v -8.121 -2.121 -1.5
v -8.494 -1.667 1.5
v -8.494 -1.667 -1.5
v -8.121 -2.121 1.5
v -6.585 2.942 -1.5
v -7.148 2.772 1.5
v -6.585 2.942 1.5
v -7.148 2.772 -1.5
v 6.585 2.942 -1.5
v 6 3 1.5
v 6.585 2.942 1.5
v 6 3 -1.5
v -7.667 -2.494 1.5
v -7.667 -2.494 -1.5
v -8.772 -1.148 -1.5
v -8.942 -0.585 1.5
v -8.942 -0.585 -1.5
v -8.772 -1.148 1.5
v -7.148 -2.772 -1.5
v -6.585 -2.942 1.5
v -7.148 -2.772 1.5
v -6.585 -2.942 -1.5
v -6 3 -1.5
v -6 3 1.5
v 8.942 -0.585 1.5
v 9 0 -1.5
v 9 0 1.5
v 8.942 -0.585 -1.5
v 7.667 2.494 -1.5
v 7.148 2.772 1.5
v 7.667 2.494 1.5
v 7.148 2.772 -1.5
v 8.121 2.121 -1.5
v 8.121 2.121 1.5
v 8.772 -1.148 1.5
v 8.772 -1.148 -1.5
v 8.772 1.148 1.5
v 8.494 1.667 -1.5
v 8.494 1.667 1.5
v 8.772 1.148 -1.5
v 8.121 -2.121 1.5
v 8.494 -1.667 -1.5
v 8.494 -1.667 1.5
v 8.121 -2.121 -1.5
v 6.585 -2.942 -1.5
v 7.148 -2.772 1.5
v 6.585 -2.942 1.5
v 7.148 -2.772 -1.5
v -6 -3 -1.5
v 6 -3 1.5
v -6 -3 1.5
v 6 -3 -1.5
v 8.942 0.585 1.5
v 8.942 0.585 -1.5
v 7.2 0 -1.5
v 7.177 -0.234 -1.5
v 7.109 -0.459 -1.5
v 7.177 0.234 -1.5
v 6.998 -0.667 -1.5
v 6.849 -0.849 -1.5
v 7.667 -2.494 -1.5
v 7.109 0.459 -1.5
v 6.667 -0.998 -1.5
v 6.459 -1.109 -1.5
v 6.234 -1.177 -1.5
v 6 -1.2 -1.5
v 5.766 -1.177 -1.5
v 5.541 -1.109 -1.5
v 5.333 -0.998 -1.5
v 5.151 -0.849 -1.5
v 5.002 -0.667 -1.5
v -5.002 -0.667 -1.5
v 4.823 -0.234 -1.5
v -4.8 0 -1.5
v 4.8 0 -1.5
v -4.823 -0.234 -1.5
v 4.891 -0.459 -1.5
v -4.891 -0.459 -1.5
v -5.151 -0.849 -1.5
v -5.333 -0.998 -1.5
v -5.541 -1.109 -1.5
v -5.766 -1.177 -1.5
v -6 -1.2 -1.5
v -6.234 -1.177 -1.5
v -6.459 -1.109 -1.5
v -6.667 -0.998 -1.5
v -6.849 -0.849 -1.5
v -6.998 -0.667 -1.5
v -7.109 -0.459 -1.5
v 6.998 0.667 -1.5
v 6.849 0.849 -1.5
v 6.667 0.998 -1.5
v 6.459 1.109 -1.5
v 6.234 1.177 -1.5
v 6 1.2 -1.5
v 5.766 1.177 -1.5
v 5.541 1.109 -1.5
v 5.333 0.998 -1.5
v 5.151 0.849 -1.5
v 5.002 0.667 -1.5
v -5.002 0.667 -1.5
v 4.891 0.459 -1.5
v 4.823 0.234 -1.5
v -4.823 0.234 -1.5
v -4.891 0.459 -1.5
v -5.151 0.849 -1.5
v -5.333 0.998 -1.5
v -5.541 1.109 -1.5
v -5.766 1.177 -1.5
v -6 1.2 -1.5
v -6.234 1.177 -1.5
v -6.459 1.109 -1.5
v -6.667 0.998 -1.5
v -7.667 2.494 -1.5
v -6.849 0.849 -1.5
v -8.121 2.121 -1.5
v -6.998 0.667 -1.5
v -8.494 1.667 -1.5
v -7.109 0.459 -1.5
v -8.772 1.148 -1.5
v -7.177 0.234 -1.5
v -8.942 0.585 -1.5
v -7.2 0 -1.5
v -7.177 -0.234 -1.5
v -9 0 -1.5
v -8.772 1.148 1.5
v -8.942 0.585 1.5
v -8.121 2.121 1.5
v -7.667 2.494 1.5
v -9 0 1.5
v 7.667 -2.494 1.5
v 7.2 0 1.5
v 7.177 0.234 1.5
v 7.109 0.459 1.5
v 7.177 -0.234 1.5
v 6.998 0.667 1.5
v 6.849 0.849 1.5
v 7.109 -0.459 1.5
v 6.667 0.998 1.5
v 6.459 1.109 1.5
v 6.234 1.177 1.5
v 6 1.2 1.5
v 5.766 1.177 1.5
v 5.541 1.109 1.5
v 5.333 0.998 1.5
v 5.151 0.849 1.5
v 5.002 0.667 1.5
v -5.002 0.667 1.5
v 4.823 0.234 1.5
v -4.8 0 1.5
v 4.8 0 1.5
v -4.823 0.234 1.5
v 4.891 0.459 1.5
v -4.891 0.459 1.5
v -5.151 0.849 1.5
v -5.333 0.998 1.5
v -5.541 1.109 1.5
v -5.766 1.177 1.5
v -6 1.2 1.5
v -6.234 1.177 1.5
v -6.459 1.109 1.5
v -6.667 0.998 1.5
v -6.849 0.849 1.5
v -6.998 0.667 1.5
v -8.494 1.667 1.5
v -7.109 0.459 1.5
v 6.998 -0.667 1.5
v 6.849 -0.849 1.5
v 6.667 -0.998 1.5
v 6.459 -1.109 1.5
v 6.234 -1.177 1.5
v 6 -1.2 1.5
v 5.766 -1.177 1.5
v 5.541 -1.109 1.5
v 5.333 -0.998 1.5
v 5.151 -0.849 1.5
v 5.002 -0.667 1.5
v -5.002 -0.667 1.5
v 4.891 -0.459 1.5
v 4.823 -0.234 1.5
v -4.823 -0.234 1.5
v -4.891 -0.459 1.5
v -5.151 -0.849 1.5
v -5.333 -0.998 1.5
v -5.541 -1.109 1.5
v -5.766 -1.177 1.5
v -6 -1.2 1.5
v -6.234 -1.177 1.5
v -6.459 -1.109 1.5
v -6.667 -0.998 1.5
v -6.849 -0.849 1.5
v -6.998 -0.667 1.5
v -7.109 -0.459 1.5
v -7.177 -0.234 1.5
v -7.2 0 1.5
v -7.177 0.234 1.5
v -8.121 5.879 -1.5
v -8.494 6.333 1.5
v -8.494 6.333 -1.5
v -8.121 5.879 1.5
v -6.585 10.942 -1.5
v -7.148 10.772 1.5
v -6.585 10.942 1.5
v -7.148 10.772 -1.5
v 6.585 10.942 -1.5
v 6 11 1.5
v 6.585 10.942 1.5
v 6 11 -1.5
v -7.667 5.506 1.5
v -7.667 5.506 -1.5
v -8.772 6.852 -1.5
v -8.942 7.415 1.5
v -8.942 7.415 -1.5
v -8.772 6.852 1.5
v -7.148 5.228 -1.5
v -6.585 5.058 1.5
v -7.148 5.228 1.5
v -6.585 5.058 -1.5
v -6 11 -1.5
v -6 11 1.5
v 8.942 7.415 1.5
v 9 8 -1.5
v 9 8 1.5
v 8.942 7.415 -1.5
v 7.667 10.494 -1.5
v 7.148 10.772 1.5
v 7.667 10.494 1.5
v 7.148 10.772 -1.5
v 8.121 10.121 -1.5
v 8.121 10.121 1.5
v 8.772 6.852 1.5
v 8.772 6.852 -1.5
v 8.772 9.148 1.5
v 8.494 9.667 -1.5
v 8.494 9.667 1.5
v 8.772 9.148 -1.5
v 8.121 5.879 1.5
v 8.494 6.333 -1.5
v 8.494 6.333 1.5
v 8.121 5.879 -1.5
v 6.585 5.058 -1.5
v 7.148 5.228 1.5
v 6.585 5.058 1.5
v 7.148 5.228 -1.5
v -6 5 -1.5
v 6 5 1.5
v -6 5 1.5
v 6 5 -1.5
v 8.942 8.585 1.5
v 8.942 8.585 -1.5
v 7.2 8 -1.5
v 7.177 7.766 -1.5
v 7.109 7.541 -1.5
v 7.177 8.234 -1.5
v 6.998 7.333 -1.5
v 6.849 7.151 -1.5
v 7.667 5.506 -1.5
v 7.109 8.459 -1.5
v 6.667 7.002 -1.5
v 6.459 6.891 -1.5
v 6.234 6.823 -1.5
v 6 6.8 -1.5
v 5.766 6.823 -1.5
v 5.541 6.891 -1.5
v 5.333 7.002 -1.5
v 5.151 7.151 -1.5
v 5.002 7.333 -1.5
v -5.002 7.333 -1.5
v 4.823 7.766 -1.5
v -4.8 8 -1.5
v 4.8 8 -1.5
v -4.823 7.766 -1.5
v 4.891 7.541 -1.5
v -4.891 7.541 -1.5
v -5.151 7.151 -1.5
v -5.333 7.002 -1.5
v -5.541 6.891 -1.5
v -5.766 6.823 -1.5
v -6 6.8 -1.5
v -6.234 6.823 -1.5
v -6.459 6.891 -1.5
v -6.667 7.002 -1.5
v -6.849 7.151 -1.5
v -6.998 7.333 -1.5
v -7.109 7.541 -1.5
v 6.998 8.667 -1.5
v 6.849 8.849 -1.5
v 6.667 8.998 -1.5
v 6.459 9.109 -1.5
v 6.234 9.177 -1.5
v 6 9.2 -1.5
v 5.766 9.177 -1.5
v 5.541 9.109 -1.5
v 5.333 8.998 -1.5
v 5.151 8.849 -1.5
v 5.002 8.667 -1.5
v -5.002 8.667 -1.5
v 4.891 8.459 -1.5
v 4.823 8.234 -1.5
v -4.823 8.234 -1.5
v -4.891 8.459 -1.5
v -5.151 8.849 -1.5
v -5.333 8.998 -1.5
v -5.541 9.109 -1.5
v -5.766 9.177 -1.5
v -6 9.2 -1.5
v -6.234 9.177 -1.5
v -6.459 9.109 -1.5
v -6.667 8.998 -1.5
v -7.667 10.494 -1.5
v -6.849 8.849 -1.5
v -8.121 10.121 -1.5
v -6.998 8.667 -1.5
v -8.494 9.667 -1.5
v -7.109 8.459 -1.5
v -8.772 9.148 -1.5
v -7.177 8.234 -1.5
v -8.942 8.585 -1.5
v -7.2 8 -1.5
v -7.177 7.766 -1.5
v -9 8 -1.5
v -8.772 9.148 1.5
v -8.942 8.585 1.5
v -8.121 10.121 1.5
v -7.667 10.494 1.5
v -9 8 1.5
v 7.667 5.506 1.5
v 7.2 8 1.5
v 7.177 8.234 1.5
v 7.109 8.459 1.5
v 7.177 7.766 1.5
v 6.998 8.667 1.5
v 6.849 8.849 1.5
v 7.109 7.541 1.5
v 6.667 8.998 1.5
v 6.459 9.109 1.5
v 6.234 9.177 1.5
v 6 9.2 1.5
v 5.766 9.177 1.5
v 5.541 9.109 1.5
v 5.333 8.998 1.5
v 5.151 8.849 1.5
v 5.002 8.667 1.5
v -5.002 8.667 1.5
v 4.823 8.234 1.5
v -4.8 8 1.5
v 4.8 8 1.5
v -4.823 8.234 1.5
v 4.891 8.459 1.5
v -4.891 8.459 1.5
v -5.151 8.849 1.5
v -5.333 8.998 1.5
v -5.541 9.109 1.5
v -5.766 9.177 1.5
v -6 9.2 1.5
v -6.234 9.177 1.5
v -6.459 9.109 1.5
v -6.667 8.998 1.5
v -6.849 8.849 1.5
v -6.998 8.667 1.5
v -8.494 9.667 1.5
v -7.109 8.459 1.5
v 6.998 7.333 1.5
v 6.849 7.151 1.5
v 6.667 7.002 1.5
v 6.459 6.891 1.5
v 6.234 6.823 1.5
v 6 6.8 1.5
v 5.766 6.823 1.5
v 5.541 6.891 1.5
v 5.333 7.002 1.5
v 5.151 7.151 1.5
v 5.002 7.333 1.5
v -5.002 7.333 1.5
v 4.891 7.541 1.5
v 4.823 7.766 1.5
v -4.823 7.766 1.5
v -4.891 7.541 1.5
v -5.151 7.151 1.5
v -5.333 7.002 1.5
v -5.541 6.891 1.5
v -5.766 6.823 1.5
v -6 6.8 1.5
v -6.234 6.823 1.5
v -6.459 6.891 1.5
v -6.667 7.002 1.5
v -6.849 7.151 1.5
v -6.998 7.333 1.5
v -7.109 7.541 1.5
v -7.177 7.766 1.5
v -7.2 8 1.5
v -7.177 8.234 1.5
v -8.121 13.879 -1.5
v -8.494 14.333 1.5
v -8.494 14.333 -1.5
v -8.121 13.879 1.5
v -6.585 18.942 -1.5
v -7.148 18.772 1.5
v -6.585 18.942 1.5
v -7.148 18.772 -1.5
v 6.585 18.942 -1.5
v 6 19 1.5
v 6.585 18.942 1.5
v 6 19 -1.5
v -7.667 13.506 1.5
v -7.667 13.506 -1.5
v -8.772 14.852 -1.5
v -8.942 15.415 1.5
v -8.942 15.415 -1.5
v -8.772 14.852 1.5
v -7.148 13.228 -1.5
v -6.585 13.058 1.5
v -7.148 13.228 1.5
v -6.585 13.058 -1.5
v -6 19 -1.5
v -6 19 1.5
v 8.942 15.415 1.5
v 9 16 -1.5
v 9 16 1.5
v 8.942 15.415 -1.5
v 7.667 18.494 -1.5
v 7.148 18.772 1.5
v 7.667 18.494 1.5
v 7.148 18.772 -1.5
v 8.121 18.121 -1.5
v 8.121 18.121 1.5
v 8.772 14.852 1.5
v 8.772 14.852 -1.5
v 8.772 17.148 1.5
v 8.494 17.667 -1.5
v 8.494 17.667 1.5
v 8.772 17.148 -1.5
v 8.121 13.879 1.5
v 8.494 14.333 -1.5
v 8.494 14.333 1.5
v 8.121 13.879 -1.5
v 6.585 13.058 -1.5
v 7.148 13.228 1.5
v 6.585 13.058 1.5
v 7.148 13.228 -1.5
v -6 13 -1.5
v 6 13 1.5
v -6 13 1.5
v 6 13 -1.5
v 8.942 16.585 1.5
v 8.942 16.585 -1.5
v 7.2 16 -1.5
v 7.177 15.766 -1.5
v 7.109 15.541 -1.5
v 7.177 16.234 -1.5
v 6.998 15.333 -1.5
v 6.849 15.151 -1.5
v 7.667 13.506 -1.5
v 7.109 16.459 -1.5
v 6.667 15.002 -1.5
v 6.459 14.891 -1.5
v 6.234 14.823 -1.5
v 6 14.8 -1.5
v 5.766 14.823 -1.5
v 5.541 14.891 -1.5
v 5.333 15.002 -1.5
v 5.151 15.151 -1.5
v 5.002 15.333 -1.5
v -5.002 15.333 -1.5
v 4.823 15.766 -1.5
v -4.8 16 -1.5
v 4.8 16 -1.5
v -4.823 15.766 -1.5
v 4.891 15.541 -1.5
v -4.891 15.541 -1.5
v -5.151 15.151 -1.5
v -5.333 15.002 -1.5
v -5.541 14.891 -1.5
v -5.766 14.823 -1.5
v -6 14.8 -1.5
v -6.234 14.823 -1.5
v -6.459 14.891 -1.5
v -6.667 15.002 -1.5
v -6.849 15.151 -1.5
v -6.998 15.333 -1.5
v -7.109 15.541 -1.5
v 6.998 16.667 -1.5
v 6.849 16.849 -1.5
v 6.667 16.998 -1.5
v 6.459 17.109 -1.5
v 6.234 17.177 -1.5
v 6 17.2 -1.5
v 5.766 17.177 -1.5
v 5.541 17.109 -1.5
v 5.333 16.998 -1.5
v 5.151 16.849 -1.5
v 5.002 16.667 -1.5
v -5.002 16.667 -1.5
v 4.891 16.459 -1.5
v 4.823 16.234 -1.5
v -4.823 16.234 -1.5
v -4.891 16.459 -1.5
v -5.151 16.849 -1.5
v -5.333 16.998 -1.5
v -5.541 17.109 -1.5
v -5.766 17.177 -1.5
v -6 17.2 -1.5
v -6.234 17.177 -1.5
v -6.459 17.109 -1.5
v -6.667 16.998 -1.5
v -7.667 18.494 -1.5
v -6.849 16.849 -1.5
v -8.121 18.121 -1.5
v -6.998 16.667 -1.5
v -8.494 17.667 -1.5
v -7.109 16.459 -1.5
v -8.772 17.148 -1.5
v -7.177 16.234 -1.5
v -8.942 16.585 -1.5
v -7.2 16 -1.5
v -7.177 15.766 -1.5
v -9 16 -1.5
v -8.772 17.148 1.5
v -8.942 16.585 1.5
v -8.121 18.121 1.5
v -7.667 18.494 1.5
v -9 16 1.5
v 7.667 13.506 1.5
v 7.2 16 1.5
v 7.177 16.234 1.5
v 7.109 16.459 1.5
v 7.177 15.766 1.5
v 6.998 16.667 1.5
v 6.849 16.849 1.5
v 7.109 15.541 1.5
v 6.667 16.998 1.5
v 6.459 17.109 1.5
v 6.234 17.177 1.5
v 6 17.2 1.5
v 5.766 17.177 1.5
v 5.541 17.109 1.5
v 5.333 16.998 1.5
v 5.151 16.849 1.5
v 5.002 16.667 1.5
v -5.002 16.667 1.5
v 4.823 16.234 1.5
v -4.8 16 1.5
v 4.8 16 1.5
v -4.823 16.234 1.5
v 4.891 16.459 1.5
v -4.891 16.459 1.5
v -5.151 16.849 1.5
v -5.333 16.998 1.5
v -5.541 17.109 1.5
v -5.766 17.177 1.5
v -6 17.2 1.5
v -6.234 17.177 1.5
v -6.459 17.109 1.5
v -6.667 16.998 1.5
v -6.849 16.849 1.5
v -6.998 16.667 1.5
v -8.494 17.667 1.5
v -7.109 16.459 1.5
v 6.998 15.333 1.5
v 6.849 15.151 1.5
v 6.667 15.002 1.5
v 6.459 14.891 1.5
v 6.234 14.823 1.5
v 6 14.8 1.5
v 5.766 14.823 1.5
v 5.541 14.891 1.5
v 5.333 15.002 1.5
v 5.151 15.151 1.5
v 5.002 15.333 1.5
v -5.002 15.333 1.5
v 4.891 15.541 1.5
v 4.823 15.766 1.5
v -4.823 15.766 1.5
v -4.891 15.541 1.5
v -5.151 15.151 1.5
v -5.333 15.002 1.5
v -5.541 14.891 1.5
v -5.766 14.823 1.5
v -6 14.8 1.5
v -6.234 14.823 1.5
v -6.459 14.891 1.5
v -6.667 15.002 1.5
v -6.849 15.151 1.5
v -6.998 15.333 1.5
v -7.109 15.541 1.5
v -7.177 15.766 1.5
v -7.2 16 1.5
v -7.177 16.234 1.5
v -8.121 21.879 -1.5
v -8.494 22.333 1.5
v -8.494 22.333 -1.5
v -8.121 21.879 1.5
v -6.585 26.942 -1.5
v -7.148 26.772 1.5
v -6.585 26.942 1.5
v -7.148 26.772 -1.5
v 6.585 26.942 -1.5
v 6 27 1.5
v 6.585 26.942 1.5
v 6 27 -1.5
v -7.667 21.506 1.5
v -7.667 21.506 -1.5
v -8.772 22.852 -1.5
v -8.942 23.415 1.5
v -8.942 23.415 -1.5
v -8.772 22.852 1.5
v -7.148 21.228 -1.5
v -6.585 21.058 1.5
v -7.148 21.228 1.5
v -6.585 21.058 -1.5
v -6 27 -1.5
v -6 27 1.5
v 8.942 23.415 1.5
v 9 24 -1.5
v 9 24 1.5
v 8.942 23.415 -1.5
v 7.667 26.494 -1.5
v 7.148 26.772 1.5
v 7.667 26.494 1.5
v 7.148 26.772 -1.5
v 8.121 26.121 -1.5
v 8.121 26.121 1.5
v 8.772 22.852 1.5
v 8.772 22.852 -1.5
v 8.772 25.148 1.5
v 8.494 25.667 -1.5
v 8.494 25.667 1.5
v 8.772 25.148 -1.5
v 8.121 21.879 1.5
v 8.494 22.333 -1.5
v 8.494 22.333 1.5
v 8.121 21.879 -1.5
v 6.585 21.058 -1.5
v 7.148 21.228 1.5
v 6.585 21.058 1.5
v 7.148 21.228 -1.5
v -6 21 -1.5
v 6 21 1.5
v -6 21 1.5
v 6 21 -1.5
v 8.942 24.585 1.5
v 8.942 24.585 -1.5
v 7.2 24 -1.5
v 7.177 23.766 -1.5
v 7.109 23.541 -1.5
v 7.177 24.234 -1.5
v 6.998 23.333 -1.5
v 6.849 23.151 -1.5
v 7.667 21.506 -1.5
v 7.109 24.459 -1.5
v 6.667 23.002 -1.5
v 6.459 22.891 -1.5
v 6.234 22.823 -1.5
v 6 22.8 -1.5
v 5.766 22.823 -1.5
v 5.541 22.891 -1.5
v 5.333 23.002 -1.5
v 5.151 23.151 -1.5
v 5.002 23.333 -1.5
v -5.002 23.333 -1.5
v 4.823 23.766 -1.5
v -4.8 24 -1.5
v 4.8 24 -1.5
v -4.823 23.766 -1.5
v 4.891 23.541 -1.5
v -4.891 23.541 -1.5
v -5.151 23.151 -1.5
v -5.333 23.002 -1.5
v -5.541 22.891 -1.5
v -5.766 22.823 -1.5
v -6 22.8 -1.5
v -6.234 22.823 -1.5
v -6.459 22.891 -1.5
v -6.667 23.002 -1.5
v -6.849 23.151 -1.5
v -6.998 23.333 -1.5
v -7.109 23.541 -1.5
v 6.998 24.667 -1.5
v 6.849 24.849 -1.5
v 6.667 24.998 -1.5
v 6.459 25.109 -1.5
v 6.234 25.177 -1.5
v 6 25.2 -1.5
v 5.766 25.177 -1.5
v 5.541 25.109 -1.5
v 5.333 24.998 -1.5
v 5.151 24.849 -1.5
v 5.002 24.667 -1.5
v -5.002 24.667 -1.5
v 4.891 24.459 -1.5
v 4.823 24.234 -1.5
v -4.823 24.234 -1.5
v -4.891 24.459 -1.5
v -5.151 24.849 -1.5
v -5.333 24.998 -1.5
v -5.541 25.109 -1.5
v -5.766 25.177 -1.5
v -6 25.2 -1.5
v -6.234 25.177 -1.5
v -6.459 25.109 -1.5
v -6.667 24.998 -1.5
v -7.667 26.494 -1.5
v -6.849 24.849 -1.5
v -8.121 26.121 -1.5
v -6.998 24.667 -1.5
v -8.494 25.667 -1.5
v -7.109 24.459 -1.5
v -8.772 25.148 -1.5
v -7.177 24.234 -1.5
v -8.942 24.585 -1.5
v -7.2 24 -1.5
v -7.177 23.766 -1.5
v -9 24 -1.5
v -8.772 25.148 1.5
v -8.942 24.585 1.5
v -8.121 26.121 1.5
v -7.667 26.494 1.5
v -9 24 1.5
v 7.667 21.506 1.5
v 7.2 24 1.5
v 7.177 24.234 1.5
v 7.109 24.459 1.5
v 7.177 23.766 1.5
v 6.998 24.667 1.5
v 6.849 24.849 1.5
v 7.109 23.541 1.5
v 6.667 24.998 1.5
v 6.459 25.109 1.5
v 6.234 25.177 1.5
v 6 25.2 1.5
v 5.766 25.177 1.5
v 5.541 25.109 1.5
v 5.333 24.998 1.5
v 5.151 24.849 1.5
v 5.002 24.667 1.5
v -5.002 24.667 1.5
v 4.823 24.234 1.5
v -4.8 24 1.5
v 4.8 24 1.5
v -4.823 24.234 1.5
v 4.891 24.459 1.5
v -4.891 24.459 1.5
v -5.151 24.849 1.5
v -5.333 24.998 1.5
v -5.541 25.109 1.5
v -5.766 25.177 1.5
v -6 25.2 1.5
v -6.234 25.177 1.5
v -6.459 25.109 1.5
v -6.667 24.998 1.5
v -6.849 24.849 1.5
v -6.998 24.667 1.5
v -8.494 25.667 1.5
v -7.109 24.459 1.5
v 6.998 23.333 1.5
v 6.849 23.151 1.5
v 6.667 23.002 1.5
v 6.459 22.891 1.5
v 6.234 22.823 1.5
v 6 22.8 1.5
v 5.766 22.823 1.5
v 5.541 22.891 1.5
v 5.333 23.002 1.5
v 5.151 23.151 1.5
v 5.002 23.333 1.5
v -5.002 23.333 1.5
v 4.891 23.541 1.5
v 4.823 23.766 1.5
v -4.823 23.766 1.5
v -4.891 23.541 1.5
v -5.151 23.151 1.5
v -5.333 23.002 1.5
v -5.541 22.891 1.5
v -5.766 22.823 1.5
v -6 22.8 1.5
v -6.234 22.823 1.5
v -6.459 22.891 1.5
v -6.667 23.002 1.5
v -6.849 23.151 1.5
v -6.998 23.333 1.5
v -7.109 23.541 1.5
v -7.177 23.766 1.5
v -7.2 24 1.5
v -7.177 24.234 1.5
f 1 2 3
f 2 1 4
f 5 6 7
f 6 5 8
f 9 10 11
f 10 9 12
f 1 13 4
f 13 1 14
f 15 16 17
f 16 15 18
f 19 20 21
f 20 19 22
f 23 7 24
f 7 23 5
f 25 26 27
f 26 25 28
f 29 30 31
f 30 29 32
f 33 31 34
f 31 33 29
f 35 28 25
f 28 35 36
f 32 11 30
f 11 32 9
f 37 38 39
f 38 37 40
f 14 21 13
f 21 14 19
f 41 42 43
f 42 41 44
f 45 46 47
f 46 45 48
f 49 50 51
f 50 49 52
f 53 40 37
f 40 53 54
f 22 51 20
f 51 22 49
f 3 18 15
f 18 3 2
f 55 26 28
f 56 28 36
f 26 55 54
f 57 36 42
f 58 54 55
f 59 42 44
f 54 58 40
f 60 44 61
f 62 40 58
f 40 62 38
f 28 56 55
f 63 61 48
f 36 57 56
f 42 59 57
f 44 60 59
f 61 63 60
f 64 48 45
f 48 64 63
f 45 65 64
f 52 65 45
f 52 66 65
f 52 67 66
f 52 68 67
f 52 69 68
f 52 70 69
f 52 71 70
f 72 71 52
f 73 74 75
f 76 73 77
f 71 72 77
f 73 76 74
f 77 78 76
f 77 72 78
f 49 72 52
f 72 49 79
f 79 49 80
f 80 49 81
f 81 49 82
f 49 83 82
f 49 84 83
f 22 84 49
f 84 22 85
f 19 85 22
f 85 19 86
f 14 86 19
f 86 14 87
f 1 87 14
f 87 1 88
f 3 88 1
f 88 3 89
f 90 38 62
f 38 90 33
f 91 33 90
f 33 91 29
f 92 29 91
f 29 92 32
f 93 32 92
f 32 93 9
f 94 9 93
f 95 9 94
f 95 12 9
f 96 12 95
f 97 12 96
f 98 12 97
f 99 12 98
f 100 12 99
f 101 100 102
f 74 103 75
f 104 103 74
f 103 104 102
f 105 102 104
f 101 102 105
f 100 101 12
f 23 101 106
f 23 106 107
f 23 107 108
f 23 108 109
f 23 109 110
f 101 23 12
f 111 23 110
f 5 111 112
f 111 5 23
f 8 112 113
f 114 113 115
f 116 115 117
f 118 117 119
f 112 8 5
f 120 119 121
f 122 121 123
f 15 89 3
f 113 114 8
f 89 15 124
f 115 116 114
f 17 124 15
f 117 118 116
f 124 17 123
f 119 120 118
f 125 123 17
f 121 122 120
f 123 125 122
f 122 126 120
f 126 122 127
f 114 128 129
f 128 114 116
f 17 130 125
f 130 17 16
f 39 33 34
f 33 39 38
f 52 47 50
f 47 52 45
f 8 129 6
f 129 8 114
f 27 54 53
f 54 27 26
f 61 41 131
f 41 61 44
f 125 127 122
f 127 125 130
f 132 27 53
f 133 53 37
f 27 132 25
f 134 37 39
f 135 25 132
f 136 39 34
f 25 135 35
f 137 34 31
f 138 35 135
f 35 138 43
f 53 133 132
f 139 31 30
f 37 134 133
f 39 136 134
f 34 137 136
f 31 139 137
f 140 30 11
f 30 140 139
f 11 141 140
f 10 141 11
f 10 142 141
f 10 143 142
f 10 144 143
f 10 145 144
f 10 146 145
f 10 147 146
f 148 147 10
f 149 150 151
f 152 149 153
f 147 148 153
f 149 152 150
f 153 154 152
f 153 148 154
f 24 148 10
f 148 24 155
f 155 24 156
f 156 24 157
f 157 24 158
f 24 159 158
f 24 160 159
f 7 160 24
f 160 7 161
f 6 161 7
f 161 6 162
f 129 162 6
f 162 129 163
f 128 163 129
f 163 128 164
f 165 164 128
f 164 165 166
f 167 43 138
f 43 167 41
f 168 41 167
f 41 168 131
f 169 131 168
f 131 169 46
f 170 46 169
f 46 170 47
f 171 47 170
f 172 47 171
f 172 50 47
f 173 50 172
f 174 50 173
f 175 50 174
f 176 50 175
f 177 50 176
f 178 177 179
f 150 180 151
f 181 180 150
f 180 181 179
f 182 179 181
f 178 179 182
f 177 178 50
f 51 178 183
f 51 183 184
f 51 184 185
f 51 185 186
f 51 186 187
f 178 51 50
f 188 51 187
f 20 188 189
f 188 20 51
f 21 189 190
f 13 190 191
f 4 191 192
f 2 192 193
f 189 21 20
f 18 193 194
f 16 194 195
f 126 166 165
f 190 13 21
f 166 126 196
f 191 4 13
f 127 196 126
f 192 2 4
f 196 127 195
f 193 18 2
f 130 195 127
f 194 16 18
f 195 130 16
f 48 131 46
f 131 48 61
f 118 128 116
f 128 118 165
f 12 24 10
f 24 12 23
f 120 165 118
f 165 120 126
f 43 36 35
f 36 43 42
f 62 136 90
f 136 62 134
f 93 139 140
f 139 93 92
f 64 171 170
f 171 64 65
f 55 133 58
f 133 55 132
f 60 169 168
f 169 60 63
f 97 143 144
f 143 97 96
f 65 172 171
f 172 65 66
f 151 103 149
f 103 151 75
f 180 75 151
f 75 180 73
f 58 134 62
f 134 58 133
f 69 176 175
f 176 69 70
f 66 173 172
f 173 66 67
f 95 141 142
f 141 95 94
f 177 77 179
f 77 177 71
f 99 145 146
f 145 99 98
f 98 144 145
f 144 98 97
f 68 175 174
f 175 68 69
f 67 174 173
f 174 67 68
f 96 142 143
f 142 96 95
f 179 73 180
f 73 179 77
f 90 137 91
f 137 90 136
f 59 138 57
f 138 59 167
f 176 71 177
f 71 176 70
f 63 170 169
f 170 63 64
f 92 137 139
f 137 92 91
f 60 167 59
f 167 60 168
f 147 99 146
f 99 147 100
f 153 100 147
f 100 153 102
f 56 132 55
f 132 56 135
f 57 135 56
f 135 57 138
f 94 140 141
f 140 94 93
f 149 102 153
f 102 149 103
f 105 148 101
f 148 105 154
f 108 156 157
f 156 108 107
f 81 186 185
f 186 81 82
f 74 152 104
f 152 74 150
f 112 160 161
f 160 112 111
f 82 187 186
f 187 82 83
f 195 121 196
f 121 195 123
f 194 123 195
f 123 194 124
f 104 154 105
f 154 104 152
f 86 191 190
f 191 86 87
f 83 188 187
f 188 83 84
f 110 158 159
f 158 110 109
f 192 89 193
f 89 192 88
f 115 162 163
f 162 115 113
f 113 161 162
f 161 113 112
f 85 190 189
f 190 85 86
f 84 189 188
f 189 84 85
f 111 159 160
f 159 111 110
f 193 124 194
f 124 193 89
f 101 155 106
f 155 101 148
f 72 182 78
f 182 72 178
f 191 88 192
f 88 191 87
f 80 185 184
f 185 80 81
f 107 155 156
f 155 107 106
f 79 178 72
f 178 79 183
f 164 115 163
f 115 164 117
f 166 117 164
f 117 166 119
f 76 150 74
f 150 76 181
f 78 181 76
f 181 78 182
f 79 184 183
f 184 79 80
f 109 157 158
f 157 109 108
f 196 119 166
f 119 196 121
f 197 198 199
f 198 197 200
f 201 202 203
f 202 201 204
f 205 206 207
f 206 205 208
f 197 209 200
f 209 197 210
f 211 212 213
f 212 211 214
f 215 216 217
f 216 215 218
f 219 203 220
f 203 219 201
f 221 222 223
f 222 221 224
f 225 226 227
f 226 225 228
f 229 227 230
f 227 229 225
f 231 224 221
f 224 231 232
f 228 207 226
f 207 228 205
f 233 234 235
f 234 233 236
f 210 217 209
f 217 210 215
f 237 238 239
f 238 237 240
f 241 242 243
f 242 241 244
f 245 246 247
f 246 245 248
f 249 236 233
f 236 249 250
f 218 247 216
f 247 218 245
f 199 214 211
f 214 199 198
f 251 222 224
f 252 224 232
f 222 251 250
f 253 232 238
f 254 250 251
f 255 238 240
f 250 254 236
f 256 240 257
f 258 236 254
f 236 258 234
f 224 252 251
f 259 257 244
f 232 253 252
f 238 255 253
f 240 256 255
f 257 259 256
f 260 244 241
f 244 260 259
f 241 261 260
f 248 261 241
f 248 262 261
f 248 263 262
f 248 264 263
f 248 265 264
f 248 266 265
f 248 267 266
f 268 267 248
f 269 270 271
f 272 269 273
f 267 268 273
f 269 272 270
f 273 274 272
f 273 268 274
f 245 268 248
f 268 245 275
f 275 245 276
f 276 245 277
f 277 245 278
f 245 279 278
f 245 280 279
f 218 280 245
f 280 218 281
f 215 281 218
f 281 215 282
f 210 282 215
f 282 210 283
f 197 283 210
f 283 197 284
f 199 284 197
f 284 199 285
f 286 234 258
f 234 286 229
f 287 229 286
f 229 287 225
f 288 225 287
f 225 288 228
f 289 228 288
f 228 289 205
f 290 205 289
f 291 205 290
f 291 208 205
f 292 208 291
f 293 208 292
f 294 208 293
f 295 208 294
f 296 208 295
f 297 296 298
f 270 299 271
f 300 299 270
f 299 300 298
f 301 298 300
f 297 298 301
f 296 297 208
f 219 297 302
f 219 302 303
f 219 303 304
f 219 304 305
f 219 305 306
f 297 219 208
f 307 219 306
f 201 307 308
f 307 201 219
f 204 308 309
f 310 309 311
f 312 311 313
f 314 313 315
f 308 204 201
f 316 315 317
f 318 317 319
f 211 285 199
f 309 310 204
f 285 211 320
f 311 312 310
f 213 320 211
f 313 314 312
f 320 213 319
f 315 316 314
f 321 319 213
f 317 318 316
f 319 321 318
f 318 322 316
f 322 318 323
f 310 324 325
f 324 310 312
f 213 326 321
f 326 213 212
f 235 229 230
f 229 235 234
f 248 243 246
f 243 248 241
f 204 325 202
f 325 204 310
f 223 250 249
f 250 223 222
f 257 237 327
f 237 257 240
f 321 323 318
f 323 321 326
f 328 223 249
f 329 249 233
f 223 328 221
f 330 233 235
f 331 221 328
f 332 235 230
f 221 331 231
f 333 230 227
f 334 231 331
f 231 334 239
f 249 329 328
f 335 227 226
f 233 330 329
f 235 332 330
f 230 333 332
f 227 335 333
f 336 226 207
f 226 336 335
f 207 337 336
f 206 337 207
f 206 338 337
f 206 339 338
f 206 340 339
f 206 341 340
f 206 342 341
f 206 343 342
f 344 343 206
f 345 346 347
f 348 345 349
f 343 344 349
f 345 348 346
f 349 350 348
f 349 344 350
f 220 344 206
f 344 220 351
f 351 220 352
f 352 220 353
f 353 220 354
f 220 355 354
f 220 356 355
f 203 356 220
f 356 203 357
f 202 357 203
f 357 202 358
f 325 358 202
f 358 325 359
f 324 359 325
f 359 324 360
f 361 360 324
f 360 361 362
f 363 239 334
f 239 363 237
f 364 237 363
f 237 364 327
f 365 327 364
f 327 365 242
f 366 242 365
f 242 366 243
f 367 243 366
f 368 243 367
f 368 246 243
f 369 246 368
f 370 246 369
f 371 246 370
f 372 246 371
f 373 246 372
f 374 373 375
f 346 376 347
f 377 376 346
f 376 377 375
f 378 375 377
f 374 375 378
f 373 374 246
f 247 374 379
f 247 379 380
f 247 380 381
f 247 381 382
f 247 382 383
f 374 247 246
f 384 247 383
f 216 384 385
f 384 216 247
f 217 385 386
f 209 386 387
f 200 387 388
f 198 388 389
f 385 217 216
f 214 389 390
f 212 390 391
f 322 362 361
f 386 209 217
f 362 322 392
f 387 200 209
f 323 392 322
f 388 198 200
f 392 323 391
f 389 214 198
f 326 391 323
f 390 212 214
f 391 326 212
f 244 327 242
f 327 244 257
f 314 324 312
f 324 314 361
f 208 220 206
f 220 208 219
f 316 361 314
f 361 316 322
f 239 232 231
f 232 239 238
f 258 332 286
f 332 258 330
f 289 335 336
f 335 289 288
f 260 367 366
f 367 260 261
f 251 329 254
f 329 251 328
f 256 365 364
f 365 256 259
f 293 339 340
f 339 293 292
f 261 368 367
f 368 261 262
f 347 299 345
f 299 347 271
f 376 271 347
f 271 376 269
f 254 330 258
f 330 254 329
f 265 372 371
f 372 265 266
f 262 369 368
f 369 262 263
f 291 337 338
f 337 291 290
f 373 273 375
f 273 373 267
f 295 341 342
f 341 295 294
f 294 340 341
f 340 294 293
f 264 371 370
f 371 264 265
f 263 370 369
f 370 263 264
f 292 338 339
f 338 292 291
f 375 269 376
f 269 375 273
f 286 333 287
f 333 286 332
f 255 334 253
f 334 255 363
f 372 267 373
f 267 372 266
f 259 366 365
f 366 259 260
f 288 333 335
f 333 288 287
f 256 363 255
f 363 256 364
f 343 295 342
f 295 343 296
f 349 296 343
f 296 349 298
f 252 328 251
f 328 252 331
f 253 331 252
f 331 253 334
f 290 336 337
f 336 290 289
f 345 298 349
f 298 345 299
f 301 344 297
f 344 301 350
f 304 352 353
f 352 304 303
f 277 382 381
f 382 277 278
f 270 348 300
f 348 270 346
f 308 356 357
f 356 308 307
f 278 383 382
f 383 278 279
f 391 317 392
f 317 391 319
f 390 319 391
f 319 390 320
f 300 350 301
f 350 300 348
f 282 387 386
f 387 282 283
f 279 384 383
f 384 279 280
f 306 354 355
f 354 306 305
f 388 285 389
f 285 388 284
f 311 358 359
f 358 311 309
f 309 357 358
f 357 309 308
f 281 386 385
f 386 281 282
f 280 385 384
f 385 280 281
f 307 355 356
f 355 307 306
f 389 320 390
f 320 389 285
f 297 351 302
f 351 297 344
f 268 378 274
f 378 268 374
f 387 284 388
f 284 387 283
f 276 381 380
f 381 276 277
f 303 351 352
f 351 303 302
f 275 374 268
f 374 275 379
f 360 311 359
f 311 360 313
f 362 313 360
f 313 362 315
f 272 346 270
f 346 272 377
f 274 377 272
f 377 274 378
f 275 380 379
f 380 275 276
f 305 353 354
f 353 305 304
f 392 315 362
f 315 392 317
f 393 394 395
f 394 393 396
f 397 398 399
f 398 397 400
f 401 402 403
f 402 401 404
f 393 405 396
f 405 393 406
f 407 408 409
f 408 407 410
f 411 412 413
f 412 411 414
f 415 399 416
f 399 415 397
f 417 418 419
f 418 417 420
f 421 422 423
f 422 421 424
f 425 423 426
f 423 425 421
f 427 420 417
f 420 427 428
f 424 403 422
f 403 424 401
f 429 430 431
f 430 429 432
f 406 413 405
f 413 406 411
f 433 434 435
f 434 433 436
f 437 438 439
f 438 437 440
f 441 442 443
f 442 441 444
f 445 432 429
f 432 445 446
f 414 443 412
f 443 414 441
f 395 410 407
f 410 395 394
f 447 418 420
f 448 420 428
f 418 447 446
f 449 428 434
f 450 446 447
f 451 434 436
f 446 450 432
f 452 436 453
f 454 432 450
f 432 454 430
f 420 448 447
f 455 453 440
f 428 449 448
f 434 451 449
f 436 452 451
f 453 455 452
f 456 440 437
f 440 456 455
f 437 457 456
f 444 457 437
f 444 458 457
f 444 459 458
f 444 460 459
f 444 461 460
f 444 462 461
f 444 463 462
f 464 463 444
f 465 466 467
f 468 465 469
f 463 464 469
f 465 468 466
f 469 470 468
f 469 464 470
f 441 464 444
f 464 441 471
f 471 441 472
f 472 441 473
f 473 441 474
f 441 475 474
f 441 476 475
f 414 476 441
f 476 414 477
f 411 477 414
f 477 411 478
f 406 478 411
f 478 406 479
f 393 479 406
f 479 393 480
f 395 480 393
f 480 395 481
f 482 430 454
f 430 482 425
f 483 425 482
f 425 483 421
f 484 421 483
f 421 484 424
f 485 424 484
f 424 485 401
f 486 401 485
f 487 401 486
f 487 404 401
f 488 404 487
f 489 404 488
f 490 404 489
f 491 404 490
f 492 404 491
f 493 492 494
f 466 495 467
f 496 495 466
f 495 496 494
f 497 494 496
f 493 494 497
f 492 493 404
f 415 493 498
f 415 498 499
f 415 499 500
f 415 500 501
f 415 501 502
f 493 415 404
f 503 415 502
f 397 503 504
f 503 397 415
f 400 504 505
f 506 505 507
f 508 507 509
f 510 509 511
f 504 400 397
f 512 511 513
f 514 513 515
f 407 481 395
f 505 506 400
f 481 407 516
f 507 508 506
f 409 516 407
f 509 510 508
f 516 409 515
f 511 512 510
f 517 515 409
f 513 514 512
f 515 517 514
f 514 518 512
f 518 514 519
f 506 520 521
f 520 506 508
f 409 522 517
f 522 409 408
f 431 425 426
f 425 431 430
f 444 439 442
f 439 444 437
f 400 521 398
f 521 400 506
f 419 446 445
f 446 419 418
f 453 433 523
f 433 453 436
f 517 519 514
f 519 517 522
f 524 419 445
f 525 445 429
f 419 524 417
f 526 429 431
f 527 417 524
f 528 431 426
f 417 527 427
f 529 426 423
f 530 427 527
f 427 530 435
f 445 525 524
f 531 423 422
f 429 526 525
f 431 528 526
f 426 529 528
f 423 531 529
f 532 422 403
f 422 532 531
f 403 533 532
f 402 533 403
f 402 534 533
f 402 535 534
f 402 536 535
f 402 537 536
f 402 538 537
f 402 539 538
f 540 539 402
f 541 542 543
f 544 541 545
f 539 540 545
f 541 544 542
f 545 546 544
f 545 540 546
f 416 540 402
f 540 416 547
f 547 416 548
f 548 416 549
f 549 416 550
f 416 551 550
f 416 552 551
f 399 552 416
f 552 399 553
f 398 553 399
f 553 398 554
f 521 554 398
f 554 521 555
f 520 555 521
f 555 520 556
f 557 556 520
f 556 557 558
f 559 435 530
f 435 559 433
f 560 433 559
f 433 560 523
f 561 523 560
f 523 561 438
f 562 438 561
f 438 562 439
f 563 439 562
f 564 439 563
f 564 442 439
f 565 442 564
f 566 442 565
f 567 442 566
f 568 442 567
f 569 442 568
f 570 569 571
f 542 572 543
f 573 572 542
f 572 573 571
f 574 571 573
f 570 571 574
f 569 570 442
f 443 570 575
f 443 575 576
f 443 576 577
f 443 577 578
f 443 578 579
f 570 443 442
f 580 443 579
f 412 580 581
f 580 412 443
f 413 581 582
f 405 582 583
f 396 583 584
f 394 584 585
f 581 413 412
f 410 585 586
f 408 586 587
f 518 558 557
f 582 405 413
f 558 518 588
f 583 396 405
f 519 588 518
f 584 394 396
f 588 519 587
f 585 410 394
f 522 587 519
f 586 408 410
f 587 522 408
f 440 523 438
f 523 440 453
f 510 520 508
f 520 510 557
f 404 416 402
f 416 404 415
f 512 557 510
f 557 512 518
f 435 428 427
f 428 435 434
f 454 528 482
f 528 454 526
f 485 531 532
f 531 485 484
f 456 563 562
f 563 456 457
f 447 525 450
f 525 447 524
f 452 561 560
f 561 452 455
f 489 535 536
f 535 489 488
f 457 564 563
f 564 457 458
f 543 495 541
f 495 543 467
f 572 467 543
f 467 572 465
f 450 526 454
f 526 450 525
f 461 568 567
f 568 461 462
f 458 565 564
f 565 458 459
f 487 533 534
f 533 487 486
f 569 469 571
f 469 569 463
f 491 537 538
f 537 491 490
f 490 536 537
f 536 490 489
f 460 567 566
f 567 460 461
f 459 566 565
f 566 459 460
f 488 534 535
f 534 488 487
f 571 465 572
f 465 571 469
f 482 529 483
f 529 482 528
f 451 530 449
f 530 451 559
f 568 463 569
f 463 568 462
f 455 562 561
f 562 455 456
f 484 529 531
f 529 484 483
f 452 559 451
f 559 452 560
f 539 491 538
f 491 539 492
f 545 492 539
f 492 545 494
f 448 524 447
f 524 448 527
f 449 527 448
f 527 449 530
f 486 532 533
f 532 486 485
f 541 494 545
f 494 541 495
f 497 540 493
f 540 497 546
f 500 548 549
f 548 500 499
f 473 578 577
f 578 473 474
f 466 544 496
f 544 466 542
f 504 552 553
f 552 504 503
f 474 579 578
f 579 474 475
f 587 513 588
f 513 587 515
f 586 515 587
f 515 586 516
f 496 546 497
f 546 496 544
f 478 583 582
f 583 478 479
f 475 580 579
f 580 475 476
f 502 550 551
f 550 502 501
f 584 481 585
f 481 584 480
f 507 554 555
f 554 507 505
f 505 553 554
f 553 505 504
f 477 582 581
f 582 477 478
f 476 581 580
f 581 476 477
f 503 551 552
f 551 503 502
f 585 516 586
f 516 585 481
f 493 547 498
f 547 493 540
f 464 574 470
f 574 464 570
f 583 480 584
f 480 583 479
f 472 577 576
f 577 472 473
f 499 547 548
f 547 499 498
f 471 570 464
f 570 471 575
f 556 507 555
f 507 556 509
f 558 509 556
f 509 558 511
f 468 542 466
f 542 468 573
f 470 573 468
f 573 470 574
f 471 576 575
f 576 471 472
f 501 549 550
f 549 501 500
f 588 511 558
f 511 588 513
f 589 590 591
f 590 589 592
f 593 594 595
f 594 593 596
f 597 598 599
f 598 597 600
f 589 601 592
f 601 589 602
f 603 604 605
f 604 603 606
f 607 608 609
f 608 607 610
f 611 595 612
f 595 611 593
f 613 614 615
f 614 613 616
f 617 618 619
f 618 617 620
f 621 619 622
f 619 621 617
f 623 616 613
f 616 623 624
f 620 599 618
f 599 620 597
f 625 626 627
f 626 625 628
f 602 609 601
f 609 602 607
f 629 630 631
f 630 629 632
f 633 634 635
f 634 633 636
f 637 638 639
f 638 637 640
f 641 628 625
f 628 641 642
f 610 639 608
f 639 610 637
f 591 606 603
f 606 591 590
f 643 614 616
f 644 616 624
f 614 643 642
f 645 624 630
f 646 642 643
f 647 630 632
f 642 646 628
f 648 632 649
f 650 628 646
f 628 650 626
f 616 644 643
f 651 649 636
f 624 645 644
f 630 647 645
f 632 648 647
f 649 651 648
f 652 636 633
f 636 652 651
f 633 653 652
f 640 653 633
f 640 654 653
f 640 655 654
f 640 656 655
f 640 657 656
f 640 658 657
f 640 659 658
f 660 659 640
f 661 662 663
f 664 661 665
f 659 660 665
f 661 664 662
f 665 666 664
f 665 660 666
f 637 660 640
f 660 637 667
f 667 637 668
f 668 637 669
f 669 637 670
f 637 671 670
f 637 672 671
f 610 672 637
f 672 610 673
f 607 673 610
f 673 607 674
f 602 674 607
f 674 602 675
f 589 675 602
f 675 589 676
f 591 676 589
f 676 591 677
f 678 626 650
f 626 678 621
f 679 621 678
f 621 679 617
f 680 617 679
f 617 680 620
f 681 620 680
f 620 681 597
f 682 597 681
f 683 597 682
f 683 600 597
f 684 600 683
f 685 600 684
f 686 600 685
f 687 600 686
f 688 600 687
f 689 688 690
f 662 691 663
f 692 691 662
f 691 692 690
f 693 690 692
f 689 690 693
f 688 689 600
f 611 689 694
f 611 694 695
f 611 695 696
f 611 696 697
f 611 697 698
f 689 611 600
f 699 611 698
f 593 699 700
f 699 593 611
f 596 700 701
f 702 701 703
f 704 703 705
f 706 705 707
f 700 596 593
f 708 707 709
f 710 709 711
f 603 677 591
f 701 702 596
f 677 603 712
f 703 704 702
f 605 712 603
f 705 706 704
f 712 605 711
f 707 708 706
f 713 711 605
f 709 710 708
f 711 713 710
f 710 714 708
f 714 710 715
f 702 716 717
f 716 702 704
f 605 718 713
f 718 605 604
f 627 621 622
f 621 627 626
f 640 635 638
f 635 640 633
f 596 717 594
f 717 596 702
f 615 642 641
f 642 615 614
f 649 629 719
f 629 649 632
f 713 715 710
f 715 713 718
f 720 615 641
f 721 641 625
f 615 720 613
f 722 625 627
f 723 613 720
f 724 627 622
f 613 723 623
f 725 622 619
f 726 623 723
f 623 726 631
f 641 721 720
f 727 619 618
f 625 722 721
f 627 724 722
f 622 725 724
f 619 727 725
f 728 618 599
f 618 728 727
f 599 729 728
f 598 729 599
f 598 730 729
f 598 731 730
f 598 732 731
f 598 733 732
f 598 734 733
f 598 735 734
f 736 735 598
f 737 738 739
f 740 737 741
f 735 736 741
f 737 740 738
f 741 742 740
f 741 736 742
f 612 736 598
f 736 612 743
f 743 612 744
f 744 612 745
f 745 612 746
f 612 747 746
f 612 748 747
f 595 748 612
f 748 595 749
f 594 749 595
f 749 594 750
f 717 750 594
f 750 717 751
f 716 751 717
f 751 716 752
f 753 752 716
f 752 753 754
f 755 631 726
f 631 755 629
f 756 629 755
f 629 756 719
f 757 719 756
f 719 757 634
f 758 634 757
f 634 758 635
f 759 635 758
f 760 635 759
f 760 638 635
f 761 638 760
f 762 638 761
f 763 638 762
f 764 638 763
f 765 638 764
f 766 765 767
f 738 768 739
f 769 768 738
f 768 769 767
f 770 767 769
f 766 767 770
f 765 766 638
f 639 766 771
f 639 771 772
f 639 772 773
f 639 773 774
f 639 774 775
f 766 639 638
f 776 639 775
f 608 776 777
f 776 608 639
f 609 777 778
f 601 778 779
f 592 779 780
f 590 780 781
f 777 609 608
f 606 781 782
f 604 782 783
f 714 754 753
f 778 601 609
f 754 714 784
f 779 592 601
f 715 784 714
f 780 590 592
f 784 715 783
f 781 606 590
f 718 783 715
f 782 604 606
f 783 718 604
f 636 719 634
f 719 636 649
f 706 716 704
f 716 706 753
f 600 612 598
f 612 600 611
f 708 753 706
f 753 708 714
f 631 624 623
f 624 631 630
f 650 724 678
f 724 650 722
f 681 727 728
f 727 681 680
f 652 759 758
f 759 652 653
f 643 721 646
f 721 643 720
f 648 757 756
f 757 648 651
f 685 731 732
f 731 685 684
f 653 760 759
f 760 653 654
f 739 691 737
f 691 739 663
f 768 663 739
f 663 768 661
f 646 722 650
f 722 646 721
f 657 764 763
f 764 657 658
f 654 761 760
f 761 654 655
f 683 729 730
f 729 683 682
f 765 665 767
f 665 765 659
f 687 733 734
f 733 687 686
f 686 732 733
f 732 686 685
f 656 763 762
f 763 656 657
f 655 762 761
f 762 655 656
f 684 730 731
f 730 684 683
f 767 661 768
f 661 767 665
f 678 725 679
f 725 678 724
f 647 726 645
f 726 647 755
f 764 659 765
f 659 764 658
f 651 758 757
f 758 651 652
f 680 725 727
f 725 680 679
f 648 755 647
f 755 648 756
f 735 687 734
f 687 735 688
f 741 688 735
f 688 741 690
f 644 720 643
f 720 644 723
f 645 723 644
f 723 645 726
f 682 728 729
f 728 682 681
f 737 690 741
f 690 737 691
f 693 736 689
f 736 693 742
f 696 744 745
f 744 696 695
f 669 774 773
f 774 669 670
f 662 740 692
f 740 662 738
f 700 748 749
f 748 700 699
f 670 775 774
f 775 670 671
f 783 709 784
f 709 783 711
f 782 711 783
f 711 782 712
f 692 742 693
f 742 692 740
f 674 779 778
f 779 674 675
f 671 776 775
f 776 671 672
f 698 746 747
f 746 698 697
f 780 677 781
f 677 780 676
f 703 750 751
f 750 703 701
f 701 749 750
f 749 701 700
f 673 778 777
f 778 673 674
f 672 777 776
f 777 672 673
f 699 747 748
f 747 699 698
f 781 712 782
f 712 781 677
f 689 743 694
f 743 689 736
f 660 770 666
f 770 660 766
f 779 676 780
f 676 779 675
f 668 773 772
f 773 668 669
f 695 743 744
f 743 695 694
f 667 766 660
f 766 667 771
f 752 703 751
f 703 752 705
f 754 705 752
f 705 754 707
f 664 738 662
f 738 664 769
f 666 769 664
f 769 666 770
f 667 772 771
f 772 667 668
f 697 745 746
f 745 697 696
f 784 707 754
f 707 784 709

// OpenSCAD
module front_guide() {
  $fn = 32;
  eps = 0.2;
  wall = 1;
  di = 2 + 2 + 2;
  difference() {
    hull() {
      translate([di, 0, 0])
      cylinder(d = 6, h = 3, center = true);

      translate([-di, 0, ])
      cylinder(d = 6, h = 3, center = true);
    }
    
    translate([di, 0, 0])
    cylinder(d = 2.4, h = 20, center = true);

    translate([-di, 0, ])
    cylinder(d = 2.4, h = 20, center = true);
  }
}

disp = 8;
front_guide();

translate([0, disp, 0])
front_guide();

translate([0, 2*disp, 0])
front_guide();

translate([0, 3*disp, 0])
front_guide();
